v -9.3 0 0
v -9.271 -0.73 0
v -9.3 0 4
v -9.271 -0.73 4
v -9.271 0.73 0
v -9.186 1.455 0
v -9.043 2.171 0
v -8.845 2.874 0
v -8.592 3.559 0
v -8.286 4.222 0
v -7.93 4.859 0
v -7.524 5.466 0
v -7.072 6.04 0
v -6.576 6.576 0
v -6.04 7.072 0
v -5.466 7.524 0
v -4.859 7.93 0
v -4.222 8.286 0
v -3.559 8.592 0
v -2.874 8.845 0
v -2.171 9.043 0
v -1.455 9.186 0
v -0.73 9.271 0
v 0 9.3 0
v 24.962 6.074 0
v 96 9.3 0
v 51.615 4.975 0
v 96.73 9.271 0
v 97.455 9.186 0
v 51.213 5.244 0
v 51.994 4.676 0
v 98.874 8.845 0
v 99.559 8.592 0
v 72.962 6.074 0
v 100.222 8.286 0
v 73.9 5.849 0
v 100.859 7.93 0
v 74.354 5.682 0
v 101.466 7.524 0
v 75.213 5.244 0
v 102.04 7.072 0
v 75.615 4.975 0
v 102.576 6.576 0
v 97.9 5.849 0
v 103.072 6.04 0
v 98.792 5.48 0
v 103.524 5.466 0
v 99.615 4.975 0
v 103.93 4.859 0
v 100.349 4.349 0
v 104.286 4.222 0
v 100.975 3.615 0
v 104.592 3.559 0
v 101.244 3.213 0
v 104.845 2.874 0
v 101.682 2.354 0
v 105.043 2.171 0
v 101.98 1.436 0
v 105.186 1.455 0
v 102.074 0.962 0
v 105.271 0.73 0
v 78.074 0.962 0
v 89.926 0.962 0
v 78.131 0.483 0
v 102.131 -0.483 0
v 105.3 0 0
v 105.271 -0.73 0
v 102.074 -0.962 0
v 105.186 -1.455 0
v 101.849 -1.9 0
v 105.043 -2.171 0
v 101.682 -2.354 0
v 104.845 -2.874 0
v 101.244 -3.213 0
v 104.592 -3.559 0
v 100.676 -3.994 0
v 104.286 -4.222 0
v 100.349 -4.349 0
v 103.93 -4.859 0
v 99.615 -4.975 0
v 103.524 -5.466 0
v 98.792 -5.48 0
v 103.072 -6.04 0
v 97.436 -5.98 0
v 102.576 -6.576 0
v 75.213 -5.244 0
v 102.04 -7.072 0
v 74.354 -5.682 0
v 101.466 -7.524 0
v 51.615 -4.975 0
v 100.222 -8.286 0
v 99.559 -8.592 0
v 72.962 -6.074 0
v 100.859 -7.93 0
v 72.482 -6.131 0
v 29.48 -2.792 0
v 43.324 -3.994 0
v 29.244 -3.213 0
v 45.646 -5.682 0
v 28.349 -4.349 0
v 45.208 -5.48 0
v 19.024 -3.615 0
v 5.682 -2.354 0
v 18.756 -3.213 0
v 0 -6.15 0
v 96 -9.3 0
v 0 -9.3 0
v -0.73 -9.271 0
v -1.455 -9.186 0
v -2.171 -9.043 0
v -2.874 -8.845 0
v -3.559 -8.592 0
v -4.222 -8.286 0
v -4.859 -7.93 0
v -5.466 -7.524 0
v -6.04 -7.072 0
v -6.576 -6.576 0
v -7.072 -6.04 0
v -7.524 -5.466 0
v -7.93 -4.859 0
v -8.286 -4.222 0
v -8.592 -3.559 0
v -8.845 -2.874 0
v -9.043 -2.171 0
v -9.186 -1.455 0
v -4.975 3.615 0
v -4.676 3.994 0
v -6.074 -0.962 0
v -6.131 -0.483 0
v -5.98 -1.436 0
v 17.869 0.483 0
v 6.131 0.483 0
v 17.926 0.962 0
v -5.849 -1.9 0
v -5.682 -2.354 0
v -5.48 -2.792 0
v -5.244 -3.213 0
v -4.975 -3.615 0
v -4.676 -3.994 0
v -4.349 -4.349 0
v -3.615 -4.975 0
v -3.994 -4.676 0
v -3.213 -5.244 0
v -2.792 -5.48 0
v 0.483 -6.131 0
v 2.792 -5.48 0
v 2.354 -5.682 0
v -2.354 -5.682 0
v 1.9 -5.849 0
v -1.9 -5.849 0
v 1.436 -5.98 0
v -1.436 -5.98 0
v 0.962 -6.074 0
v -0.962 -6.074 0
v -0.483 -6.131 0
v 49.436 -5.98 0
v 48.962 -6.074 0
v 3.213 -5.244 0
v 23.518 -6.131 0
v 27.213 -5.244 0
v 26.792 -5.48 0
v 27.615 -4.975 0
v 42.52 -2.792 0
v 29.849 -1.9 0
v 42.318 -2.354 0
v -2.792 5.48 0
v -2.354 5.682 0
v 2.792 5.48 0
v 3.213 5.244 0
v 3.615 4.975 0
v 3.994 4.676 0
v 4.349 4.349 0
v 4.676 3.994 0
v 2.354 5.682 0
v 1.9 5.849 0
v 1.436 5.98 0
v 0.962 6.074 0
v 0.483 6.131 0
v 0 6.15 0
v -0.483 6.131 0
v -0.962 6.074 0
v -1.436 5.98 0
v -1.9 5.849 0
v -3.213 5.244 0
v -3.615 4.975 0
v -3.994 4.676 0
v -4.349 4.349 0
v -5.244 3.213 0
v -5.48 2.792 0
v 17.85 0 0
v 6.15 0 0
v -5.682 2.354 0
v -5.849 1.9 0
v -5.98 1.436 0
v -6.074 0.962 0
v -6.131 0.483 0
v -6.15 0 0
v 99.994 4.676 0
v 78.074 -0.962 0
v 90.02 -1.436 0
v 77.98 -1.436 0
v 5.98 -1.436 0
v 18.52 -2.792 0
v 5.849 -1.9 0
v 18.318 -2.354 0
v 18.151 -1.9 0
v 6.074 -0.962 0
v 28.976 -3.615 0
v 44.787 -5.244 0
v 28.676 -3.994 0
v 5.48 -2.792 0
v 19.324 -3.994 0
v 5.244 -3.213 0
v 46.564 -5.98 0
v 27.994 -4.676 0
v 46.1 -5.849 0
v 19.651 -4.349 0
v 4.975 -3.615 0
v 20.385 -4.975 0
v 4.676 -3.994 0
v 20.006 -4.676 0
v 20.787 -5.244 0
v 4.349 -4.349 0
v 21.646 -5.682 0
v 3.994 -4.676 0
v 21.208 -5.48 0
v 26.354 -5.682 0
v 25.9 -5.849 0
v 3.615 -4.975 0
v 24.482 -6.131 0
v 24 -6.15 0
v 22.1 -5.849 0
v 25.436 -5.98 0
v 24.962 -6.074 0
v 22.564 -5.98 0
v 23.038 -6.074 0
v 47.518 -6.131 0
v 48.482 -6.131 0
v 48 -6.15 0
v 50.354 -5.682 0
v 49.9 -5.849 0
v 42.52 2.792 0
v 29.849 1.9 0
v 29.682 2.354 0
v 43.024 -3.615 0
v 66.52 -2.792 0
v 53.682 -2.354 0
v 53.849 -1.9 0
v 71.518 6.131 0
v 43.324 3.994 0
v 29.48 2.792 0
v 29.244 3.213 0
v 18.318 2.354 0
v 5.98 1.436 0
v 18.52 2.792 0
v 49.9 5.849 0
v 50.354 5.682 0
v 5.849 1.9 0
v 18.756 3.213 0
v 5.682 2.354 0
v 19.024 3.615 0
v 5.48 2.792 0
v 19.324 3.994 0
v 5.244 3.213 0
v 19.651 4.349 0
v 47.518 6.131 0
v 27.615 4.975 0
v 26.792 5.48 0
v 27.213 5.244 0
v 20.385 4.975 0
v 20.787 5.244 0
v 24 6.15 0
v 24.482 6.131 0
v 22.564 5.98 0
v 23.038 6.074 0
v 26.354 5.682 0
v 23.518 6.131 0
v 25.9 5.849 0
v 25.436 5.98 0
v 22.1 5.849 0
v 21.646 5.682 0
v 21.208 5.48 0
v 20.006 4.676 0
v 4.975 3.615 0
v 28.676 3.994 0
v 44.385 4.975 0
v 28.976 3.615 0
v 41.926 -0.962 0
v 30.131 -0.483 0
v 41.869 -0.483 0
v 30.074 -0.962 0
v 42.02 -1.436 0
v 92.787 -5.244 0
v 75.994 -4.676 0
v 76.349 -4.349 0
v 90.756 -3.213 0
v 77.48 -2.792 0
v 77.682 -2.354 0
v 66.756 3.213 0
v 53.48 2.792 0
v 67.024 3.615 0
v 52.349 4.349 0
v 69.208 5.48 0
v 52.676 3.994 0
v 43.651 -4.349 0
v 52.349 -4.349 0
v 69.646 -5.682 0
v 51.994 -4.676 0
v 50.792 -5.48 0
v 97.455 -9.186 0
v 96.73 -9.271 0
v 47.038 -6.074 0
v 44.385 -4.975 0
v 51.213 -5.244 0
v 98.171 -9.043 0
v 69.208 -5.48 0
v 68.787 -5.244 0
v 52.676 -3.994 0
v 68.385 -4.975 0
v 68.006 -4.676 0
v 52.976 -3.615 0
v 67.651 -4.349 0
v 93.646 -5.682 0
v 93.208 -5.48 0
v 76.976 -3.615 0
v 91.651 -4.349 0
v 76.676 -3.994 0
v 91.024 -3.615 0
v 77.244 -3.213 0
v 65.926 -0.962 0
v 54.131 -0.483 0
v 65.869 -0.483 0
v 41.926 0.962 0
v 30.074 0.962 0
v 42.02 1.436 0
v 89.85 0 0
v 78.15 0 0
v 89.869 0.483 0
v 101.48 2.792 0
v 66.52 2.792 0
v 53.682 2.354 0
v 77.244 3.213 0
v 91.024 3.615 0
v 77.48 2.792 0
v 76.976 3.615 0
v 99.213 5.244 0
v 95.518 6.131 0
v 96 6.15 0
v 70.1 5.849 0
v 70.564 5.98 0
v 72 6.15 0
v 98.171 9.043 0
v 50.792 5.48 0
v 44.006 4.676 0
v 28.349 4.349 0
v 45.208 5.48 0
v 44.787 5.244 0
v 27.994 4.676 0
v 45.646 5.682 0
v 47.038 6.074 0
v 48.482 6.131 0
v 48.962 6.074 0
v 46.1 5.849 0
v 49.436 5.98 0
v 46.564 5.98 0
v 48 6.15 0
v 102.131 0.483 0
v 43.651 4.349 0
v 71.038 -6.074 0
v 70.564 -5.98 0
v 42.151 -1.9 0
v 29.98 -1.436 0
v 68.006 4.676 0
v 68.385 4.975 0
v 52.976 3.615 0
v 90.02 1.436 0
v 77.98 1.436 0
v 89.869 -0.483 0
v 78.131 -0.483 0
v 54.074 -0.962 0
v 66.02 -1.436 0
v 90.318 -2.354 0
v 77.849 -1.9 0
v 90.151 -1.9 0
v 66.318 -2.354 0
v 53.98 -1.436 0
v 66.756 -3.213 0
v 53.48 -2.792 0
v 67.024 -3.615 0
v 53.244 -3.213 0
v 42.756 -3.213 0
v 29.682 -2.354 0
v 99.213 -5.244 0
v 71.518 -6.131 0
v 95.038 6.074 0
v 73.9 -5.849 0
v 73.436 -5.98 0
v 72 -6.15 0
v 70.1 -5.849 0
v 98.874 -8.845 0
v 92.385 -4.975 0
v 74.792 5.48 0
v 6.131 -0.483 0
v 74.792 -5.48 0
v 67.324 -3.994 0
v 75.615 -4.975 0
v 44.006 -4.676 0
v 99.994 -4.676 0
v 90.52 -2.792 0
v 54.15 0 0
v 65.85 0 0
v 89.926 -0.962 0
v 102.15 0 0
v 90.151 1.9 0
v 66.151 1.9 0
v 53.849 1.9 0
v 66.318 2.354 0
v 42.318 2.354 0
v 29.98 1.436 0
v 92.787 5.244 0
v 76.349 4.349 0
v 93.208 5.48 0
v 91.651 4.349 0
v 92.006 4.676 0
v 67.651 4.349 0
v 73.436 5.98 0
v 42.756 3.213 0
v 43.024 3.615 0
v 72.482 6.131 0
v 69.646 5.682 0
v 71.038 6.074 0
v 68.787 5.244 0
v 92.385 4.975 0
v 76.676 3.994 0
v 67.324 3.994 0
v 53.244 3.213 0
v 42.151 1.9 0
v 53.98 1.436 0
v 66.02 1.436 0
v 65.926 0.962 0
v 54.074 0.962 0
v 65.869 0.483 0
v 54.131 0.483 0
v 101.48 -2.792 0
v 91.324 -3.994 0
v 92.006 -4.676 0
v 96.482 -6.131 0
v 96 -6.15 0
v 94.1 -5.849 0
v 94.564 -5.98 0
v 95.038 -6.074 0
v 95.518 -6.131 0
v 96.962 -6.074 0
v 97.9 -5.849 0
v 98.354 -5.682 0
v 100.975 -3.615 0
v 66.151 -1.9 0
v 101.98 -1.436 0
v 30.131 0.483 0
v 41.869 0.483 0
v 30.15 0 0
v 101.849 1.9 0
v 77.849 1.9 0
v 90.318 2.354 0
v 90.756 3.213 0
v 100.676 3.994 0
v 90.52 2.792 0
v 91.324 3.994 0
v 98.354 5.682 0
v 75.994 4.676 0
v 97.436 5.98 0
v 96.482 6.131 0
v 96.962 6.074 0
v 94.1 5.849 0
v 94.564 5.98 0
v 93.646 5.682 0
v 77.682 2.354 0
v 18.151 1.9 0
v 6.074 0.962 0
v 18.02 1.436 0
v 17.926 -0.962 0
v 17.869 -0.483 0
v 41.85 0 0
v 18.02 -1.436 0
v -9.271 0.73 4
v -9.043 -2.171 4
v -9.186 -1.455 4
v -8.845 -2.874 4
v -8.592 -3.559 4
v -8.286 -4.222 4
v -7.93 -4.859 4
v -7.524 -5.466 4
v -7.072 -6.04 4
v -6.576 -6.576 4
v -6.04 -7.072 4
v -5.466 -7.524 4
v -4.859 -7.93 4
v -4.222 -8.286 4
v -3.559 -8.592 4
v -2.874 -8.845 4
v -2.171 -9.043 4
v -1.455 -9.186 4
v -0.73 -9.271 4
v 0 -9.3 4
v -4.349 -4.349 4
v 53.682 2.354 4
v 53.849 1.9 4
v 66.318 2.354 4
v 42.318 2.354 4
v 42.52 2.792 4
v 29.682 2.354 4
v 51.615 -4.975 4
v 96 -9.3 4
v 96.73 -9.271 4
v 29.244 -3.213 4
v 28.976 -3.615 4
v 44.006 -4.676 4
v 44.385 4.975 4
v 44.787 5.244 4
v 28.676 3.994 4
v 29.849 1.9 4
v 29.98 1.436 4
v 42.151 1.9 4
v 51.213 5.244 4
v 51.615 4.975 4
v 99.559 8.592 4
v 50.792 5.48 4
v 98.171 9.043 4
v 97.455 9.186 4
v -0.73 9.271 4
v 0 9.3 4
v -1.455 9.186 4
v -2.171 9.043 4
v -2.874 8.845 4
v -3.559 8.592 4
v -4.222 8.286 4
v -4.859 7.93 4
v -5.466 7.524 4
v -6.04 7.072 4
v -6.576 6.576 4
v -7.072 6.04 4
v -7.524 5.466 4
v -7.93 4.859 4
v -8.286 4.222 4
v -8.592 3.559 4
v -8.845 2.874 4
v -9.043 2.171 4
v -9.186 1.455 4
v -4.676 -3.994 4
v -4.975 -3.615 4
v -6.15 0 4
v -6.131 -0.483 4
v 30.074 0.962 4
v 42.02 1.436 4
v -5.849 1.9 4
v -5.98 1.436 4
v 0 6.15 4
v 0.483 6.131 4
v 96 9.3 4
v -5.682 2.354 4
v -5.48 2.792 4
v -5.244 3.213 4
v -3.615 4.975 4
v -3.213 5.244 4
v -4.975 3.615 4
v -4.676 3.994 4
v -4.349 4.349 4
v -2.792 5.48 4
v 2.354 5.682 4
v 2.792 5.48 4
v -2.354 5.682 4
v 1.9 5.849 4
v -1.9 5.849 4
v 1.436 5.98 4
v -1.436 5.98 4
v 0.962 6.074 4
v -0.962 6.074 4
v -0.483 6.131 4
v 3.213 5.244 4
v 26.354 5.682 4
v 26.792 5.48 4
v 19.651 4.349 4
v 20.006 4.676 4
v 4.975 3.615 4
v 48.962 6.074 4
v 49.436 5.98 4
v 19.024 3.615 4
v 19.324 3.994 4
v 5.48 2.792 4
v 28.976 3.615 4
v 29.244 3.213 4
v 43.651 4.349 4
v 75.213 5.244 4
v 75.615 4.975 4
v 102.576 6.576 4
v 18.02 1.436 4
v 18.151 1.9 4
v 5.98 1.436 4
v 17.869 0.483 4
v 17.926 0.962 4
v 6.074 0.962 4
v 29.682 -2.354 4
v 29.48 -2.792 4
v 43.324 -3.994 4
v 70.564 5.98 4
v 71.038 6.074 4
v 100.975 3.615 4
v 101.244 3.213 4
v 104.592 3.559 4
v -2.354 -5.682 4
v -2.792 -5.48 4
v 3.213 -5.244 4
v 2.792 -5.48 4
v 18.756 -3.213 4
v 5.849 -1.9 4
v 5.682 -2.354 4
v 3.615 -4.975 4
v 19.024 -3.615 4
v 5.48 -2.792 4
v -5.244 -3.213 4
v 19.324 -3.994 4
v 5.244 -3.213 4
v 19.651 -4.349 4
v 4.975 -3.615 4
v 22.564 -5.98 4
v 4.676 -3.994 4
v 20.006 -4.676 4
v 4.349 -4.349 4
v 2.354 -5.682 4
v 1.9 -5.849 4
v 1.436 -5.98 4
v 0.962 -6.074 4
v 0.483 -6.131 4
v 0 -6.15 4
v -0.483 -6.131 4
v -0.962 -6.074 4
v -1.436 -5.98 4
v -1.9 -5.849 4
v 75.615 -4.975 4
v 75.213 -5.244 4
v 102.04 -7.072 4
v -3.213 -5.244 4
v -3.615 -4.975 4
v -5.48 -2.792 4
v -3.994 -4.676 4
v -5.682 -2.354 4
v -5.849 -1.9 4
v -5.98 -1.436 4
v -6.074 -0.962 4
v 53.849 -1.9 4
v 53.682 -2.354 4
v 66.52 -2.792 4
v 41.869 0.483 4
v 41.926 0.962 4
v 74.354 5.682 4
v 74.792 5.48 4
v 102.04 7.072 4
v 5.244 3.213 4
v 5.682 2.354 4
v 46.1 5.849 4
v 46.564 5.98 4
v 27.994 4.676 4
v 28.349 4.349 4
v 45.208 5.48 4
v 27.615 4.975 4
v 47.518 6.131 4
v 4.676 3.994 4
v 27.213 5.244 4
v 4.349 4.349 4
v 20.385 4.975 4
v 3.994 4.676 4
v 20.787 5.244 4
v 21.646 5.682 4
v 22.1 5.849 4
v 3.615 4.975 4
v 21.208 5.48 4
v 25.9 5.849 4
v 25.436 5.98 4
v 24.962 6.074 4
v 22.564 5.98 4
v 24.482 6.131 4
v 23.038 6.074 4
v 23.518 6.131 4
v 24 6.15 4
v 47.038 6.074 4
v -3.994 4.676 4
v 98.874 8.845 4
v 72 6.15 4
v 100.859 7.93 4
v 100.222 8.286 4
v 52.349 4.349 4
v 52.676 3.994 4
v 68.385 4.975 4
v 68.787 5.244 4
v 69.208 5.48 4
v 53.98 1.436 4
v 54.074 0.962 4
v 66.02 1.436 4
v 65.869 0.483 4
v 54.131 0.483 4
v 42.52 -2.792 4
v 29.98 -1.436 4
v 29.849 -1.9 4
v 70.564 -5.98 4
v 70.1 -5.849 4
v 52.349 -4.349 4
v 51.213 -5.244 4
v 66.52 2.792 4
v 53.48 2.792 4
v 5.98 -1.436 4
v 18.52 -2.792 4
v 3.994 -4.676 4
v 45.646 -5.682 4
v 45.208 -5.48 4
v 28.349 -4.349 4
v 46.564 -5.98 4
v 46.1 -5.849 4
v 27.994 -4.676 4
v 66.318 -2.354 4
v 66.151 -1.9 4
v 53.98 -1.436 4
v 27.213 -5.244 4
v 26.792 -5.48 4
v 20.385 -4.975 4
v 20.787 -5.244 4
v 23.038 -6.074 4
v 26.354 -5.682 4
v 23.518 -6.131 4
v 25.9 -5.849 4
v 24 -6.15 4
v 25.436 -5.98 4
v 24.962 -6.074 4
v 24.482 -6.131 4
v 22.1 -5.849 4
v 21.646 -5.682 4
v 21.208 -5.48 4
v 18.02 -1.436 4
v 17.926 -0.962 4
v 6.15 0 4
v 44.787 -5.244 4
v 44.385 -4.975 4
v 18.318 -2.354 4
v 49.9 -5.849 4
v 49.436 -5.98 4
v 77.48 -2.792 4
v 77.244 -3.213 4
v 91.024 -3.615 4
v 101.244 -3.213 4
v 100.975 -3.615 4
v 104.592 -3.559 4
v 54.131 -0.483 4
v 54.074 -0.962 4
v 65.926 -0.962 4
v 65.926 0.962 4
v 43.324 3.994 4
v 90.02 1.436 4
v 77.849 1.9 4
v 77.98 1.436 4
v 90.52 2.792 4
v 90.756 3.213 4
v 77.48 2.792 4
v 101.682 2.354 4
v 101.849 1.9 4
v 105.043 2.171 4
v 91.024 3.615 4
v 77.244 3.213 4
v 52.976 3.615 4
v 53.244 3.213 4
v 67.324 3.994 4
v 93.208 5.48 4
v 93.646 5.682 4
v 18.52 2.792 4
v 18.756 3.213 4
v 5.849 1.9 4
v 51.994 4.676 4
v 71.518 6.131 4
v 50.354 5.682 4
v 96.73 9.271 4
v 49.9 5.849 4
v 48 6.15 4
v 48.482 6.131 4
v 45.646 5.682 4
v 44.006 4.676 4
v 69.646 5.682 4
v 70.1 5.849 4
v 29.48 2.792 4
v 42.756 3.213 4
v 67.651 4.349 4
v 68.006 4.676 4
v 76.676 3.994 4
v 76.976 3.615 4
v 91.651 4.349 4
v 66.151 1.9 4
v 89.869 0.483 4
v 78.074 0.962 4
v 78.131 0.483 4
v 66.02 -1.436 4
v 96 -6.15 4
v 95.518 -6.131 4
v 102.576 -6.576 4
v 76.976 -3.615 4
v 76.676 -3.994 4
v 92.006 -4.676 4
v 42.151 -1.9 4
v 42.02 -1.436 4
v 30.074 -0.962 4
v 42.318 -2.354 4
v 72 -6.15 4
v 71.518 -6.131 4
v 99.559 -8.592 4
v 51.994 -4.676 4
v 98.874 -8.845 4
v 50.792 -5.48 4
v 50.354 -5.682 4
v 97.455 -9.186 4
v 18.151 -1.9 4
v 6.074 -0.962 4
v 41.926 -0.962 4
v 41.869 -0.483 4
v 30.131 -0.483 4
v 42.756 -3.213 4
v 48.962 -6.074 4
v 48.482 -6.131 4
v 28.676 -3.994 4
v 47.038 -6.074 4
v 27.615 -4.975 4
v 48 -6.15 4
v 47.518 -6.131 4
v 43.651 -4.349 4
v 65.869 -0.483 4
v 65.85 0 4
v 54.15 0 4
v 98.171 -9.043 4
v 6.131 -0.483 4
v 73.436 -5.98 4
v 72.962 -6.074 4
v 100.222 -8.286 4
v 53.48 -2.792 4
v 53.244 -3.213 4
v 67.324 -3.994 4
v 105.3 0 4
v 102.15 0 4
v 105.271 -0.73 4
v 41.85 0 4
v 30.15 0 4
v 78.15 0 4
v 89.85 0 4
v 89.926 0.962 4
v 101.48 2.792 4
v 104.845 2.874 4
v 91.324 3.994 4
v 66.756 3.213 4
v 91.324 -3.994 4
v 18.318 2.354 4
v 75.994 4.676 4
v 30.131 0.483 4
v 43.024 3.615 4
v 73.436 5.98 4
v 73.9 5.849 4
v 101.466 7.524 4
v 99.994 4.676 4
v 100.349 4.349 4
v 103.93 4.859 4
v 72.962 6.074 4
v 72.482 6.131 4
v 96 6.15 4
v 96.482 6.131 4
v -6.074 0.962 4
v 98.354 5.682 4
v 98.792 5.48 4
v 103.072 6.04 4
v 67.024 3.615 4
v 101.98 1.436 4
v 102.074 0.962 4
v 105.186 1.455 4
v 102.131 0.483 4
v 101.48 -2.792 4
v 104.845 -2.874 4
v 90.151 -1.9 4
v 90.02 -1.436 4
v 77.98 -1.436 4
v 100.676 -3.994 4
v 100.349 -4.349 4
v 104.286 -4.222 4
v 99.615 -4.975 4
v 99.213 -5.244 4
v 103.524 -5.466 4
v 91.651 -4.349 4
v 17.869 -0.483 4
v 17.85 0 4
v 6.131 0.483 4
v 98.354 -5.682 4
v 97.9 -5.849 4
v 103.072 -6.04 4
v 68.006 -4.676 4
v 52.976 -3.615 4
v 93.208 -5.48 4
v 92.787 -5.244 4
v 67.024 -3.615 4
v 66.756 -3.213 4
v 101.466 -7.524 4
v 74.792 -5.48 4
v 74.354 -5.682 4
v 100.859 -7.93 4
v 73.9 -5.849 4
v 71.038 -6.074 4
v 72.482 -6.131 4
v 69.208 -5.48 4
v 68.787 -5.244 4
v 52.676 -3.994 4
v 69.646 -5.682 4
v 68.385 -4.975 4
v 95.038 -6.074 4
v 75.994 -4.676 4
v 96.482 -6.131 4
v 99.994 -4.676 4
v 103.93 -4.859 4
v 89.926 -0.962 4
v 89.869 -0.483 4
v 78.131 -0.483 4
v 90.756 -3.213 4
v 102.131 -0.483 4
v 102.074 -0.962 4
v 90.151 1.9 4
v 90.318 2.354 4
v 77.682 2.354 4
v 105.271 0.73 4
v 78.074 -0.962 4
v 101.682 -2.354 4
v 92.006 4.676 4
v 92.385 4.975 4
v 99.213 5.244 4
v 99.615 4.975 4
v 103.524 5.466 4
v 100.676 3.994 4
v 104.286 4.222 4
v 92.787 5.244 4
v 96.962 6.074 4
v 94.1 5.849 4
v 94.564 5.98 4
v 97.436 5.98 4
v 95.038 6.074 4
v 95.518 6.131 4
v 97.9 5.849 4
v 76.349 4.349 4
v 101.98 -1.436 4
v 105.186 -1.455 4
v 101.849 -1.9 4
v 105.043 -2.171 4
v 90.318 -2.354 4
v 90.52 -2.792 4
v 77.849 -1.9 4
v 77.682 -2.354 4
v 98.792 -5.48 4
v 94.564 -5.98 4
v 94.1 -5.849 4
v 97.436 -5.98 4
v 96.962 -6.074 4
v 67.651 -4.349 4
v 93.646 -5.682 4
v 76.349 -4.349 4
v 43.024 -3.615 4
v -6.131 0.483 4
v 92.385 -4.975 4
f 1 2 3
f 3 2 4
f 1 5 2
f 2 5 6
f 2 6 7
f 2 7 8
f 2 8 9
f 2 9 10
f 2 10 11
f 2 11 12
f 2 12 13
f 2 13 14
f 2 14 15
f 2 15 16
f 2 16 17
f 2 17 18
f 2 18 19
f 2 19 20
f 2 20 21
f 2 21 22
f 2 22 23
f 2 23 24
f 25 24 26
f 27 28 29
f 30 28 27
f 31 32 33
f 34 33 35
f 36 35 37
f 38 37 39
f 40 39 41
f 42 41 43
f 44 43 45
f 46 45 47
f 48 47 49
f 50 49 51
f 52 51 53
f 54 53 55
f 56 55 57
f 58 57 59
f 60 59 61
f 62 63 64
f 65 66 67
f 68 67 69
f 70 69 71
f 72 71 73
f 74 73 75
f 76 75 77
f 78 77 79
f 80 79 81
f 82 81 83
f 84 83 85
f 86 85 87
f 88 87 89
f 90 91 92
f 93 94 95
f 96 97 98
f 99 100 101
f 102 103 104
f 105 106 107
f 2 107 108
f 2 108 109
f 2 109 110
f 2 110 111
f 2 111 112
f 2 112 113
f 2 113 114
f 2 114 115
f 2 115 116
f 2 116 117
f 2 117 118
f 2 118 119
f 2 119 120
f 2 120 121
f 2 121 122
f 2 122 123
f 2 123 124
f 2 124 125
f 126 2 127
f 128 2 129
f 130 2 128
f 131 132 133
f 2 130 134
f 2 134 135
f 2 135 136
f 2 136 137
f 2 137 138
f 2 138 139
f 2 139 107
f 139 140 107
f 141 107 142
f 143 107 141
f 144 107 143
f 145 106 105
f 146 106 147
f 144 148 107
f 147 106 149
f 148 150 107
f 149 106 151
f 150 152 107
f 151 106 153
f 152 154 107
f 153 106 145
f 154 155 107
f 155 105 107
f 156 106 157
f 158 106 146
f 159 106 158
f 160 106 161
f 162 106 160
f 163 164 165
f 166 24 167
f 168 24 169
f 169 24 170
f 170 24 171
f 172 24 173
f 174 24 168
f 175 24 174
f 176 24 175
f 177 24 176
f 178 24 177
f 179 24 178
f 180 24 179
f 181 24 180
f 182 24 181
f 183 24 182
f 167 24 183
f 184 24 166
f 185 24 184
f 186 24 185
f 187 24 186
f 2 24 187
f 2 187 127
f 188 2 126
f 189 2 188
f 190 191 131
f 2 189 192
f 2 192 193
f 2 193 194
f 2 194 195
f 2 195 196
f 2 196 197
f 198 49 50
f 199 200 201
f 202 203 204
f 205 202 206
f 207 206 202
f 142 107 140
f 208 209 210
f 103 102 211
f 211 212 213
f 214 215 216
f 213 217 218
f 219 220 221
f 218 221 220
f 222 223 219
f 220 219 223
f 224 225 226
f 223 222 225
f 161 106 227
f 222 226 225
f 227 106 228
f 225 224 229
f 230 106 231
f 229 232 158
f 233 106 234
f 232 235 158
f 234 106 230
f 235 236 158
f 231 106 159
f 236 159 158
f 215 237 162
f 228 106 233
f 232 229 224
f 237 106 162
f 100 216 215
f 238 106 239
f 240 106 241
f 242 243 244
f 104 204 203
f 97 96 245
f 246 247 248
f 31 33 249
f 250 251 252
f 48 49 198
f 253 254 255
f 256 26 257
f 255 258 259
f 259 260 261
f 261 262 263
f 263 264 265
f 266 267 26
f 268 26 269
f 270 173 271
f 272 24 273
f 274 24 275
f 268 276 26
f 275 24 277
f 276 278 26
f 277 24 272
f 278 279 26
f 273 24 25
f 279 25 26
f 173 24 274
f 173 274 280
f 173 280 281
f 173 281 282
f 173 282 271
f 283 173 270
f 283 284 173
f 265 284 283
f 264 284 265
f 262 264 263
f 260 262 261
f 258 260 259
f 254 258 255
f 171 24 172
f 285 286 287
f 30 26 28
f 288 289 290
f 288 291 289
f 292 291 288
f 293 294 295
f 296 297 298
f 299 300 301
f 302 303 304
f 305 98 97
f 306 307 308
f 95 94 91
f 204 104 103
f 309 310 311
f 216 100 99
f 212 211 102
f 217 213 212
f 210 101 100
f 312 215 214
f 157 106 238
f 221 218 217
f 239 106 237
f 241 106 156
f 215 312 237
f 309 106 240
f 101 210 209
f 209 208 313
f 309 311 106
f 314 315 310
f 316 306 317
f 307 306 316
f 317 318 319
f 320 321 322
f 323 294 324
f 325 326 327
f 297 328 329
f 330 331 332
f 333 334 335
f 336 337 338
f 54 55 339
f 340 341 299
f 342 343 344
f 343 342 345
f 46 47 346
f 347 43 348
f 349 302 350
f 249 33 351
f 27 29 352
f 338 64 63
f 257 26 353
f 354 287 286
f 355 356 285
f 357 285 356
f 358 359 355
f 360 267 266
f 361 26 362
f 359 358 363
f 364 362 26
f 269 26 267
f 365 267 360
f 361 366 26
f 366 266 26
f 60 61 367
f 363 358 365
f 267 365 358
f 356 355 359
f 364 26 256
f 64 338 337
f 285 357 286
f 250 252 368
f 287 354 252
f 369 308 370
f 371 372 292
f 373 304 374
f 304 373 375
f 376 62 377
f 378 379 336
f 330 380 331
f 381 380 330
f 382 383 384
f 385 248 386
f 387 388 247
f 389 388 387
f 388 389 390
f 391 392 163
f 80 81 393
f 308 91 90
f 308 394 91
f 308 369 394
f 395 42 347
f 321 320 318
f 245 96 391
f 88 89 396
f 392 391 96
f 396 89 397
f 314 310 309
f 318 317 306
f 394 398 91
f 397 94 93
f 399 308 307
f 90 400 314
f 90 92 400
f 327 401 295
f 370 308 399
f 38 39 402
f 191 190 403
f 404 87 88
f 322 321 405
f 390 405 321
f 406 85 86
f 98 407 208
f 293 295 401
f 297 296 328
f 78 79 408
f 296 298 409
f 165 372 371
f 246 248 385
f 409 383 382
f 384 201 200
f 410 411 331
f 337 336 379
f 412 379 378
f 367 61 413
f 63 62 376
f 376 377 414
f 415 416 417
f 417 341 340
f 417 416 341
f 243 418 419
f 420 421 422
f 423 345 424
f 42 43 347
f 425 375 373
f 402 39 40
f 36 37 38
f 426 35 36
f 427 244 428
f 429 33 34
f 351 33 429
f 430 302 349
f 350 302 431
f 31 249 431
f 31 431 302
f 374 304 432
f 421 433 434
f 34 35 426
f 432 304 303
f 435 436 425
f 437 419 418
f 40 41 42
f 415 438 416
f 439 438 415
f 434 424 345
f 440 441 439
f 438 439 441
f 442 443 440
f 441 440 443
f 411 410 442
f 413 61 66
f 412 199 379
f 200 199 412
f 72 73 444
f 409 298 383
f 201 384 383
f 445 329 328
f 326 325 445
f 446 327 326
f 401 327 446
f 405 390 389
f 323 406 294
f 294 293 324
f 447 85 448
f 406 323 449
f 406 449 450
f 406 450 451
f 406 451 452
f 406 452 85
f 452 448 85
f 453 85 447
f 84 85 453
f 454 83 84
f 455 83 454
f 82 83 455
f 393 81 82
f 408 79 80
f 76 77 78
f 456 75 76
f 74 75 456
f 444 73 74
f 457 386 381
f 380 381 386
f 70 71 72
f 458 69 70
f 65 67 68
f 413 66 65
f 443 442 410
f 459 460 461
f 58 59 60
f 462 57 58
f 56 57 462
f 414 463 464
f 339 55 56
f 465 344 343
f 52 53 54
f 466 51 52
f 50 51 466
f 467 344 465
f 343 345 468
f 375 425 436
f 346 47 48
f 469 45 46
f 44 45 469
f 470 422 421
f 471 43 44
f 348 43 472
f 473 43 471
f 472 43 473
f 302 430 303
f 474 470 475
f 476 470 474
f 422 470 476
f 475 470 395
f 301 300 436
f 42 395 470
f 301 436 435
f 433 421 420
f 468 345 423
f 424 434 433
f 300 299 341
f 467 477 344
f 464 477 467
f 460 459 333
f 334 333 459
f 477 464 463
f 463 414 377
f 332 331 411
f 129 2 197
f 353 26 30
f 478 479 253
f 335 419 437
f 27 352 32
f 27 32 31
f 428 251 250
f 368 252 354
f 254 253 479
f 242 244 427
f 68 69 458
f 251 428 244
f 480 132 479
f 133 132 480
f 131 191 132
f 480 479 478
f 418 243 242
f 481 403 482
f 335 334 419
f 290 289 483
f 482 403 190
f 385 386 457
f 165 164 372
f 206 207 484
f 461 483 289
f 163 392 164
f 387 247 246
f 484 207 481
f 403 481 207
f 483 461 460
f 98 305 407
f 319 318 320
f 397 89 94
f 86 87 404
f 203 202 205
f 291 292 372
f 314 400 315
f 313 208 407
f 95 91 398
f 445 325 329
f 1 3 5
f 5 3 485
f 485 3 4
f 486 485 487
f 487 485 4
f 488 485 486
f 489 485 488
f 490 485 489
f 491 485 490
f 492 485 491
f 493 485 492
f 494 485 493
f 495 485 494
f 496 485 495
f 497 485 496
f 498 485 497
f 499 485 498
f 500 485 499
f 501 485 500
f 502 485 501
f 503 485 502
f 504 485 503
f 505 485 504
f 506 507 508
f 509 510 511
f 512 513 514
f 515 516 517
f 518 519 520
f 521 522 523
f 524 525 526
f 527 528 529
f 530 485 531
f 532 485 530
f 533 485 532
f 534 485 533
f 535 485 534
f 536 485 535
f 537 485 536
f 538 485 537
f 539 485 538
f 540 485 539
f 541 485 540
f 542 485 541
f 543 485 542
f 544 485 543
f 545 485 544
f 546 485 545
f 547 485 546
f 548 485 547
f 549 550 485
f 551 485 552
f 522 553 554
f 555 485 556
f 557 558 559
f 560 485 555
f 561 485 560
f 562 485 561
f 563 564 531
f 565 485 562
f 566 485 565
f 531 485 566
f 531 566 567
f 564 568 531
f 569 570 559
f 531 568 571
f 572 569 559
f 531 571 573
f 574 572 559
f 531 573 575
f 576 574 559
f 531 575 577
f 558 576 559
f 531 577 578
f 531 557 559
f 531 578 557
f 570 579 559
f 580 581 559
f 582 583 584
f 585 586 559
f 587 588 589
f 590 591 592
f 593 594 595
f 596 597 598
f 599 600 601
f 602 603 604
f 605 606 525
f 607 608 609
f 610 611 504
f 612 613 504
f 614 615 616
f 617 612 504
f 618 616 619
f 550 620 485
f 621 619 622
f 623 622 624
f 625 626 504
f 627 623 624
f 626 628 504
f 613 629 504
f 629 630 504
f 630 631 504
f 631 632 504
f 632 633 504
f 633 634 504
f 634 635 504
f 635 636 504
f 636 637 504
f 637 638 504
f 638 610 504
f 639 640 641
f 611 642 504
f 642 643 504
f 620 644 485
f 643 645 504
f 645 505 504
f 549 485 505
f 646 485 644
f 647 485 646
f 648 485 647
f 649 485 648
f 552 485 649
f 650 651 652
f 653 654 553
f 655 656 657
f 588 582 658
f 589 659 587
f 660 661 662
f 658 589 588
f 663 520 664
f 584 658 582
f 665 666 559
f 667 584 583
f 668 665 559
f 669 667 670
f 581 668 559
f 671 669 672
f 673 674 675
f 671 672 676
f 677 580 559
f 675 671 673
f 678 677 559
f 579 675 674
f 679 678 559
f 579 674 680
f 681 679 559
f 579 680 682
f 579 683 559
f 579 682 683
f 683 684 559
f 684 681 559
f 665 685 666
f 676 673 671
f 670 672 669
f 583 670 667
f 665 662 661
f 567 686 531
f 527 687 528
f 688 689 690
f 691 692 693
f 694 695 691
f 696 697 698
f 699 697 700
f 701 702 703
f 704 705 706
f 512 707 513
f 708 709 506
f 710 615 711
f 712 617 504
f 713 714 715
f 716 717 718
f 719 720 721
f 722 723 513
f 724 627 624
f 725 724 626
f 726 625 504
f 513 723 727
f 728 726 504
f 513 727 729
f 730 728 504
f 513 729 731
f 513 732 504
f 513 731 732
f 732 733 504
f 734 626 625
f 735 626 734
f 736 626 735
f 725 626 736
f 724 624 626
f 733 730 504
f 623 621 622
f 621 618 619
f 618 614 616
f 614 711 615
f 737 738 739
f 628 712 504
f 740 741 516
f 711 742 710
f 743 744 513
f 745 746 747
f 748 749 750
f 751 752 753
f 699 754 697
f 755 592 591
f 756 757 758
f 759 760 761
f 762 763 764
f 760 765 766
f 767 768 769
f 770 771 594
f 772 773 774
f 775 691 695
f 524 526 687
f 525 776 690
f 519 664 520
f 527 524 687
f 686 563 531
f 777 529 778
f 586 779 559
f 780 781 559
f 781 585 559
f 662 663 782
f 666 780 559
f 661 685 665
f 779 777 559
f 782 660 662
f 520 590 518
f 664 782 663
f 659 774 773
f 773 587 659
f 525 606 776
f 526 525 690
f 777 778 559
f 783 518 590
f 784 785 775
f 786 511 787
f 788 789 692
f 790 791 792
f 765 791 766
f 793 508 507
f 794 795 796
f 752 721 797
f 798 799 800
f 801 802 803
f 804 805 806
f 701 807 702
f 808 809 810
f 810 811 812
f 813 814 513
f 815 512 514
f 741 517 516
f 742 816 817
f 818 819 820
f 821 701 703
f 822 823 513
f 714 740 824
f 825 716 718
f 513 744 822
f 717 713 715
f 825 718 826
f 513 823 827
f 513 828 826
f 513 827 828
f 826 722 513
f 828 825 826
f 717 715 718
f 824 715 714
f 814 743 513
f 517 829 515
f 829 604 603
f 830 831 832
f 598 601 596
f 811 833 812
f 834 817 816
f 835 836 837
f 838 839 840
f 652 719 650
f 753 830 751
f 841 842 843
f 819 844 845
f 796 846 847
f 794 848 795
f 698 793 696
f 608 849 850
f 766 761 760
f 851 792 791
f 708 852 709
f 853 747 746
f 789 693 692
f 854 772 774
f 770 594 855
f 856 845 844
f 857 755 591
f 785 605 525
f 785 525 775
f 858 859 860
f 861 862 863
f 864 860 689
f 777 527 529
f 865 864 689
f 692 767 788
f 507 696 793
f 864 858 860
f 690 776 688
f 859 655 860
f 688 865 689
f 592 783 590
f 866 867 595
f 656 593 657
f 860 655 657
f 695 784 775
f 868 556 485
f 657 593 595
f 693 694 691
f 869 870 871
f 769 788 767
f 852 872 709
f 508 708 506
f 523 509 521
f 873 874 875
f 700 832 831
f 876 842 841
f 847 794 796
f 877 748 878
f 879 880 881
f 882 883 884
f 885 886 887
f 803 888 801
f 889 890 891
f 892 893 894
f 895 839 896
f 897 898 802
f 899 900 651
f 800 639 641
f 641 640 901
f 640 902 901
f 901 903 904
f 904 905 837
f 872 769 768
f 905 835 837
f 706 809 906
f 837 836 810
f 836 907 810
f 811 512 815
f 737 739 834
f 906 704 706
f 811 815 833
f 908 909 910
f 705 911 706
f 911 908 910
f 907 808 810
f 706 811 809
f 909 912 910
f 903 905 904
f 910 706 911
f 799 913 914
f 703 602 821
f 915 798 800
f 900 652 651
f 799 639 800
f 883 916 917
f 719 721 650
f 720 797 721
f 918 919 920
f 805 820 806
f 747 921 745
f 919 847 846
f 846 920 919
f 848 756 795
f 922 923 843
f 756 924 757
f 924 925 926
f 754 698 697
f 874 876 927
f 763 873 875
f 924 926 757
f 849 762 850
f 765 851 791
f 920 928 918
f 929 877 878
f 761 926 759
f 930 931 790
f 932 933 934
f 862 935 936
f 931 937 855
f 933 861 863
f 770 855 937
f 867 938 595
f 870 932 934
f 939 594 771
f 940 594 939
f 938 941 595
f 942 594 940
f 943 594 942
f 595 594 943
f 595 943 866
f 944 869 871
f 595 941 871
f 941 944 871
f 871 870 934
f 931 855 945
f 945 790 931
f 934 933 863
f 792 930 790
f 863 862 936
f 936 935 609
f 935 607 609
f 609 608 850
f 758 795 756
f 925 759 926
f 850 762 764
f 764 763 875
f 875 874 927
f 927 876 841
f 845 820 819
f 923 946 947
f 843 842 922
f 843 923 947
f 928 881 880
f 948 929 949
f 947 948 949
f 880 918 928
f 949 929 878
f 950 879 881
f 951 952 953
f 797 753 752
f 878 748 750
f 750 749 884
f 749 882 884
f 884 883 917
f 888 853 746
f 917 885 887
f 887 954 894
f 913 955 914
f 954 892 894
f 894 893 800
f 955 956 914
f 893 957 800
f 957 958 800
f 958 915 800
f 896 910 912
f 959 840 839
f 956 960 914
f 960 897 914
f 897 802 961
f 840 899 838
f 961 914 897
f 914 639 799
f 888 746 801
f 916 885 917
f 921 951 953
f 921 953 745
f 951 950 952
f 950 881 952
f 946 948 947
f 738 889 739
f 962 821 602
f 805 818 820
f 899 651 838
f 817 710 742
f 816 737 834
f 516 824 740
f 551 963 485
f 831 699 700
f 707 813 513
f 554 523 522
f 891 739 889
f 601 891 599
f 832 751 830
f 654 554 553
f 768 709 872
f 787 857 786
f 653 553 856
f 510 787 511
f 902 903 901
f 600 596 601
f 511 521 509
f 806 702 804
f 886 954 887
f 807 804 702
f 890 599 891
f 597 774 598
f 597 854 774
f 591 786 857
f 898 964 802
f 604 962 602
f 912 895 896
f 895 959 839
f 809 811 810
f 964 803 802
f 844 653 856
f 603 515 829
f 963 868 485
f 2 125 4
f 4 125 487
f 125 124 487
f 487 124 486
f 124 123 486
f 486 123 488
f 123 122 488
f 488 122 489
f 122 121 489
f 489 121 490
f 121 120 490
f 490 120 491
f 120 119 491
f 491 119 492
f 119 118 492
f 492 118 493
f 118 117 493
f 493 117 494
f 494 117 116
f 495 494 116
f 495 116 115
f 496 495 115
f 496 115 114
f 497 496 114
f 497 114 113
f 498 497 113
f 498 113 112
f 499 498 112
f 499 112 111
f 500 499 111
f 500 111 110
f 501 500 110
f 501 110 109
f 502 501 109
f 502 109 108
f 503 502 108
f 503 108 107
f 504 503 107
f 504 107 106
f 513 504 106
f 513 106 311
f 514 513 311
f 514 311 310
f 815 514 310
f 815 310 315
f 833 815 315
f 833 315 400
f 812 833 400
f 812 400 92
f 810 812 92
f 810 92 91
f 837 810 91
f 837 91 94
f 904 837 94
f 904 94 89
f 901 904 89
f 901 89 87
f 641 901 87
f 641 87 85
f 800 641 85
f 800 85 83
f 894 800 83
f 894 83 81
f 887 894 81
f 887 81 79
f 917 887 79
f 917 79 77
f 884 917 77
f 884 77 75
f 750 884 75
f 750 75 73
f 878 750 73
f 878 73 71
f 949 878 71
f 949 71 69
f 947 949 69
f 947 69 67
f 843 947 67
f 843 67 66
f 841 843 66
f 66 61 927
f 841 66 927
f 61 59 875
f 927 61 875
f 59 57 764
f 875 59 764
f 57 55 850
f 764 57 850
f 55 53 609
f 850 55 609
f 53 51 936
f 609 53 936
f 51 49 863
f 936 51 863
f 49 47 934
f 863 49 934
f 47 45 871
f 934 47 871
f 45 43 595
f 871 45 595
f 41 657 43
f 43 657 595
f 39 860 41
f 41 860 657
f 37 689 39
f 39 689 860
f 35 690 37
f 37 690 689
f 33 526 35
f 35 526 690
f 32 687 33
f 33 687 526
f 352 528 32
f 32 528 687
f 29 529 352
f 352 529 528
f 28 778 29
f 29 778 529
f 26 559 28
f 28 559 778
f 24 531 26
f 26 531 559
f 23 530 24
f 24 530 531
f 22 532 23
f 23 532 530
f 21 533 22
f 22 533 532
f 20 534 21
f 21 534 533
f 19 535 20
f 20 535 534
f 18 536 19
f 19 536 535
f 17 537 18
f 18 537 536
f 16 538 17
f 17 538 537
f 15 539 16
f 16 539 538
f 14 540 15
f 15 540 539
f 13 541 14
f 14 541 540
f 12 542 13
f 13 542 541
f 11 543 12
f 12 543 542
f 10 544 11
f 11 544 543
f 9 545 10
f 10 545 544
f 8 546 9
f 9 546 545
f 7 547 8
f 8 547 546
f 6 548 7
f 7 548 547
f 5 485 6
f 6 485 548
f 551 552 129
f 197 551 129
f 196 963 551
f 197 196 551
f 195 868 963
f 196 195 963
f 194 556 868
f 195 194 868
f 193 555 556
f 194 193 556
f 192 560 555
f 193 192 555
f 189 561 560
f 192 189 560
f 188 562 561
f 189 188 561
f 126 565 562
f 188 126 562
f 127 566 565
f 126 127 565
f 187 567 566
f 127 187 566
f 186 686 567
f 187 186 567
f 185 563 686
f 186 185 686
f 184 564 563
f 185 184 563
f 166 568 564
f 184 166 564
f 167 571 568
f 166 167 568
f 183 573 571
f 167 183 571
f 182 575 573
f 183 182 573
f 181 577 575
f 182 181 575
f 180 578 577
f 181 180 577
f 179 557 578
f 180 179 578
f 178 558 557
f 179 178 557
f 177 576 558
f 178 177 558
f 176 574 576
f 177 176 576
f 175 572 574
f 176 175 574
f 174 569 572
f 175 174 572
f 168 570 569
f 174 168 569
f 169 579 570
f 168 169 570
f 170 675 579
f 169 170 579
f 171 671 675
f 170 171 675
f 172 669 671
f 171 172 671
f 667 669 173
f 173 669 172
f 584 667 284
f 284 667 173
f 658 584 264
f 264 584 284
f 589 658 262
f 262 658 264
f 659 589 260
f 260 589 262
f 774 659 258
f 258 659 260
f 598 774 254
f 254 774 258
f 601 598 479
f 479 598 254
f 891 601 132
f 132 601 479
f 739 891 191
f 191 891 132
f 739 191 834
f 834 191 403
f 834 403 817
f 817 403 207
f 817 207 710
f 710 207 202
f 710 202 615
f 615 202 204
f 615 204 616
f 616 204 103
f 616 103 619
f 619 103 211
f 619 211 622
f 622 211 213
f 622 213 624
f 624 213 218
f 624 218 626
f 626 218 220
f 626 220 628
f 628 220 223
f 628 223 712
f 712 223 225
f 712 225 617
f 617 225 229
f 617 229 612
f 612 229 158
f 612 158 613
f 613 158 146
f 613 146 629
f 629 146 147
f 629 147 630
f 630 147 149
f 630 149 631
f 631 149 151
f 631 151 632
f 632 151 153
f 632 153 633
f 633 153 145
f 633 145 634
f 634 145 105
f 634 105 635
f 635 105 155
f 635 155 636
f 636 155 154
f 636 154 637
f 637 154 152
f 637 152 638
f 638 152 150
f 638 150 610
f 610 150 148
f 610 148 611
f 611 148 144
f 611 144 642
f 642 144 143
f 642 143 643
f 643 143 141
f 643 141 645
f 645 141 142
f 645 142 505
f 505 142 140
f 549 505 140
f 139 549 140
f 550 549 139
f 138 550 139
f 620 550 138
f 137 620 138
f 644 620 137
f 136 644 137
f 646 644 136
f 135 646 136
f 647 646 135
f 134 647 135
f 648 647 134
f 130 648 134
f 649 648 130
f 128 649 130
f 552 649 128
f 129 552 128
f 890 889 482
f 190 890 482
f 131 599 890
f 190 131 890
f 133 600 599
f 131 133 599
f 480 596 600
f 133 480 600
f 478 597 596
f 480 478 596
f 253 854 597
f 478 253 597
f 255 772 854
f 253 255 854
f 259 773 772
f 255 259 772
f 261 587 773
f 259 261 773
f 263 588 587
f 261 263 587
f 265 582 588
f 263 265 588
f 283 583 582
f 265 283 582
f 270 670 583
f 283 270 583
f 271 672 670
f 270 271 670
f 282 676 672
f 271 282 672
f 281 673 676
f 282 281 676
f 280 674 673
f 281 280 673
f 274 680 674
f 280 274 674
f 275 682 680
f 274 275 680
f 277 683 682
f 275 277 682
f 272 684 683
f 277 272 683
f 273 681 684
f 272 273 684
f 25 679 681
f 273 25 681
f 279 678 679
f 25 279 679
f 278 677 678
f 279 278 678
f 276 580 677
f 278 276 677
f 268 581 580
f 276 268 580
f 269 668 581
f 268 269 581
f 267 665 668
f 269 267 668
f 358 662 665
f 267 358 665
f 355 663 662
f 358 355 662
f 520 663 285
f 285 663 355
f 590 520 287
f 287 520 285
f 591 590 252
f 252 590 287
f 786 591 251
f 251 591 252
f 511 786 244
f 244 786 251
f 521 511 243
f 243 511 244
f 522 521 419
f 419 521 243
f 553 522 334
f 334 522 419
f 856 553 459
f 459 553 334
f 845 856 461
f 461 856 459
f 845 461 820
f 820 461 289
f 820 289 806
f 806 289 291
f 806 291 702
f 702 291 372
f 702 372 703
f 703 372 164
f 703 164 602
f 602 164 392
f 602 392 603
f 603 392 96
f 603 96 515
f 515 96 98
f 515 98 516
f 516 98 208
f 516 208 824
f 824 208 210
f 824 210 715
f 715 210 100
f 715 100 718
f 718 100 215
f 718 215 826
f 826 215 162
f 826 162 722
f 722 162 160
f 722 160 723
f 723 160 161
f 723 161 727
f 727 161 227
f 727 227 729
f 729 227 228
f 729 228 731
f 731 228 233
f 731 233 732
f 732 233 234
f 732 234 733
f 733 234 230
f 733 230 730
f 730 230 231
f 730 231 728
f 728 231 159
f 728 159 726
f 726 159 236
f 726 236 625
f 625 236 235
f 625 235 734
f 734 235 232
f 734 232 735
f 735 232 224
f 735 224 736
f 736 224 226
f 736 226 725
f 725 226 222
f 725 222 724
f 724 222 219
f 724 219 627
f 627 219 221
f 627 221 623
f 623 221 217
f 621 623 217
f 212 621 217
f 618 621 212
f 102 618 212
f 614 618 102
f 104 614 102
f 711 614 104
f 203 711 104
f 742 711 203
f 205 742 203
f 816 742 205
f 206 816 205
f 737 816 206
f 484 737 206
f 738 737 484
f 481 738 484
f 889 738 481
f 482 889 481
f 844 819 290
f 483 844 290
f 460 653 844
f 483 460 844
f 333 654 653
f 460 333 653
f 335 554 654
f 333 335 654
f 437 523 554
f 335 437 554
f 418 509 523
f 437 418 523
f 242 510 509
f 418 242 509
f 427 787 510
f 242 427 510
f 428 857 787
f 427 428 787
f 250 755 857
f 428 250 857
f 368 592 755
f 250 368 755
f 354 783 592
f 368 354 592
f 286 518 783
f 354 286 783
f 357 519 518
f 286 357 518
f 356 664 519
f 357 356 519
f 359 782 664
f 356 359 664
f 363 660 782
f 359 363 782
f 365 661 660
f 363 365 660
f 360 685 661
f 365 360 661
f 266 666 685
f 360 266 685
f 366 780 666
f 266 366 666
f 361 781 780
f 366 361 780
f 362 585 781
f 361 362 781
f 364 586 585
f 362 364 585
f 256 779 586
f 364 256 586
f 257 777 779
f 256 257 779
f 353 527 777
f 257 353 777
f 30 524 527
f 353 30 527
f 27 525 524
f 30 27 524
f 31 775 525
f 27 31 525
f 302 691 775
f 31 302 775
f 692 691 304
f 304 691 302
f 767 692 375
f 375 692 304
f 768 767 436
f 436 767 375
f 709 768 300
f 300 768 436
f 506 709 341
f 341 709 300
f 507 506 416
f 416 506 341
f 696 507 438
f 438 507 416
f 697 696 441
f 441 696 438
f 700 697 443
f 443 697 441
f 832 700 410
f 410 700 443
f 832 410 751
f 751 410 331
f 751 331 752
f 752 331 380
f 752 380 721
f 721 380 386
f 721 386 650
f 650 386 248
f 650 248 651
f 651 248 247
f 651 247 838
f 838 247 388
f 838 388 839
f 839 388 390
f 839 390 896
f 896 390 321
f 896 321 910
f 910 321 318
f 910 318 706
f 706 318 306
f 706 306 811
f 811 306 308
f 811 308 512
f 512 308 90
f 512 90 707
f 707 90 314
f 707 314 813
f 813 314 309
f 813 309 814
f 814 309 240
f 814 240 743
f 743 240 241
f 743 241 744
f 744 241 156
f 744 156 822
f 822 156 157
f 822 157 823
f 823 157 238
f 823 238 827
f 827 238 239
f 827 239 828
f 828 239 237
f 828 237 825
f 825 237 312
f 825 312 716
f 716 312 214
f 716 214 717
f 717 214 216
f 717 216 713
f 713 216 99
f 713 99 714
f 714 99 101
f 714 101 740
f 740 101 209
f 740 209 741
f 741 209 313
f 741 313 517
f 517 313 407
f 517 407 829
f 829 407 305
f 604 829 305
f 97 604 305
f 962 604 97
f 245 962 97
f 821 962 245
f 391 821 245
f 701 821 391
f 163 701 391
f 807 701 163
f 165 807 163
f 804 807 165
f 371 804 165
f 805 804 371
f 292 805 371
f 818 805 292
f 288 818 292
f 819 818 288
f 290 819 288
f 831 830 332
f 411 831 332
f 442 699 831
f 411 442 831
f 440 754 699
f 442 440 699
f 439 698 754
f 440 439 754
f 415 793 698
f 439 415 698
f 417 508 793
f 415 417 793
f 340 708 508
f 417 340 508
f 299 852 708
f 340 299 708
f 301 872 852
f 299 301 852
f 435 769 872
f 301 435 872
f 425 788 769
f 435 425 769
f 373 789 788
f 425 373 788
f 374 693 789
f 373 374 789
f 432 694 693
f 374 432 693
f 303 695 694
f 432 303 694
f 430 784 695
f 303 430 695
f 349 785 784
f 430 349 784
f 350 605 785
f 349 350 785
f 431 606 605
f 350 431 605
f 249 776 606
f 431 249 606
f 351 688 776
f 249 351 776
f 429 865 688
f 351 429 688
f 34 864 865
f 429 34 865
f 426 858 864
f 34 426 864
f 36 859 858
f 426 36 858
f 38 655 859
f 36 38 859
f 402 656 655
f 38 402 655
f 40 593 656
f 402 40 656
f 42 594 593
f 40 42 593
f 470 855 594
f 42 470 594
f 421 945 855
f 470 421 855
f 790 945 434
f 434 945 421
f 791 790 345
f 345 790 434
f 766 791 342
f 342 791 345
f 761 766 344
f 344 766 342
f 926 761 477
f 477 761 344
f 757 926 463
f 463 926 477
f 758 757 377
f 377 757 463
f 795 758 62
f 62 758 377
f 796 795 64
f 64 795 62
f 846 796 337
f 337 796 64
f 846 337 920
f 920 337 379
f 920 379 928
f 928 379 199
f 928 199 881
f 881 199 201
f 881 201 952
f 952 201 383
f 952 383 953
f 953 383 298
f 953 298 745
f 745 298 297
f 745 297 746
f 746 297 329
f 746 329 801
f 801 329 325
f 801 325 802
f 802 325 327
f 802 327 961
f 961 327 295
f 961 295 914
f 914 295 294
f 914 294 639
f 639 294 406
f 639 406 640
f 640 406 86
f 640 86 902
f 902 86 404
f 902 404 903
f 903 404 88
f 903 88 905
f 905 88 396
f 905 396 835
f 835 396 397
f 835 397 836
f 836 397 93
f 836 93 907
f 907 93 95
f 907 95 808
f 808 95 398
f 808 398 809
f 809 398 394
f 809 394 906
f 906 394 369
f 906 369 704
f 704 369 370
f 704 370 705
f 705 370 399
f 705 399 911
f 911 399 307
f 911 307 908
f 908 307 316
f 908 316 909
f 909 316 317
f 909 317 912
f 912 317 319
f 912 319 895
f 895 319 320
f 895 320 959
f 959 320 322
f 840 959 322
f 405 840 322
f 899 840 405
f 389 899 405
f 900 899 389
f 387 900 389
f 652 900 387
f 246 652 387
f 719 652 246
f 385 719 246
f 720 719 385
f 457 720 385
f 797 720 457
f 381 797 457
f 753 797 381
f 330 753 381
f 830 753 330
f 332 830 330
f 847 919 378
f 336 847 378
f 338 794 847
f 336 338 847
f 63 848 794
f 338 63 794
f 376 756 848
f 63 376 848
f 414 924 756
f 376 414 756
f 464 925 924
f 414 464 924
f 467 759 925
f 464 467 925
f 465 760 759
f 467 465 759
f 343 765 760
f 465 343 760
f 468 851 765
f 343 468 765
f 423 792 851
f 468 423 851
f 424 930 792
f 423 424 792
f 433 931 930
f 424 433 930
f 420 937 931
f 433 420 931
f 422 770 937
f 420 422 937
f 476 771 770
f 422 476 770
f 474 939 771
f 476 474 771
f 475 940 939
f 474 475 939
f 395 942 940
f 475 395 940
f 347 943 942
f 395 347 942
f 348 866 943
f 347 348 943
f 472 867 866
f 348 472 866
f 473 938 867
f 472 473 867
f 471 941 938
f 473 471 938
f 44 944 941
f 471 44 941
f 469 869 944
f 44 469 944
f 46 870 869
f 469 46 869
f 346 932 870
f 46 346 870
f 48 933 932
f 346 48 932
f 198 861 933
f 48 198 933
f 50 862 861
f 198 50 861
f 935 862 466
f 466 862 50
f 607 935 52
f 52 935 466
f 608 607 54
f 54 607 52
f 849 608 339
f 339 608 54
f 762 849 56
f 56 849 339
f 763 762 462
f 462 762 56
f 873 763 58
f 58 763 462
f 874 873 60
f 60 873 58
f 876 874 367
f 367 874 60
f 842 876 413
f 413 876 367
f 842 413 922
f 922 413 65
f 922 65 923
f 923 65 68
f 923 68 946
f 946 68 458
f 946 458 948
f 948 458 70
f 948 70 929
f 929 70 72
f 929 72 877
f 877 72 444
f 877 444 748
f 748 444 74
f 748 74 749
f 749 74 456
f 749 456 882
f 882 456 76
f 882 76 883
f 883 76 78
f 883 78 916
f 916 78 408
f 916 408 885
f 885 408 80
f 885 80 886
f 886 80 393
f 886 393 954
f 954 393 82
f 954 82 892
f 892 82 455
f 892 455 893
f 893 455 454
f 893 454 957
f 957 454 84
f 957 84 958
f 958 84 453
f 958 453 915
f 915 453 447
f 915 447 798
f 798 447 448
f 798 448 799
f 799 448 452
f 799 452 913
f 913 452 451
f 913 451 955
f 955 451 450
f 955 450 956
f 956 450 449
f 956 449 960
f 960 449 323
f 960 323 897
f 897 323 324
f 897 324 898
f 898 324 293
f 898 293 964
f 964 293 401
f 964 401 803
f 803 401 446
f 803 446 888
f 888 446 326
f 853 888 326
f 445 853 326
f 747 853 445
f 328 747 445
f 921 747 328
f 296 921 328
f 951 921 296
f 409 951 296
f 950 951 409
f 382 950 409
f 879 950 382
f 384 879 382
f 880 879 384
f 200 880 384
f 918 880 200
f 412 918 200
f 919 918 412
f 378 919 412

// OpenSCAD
// file: inc/constants.scad
pi=3.1415;
$fn=80;
//hole radius
hr = 6;

//distance between holes
dh = 12;

//x distance between holes
dhx = 12;

//y distance between holes
dhy = 14.4;

//give between two gears
giveg = .5;

//shaft give
sgive = .6;

//plug give
pgive = .15;

//fastener give (holes)
fgive = .13;

pitch=.25;

//gear give (hole)
ggive = .45;

//spacer give
spgive = .3;


////fastener sizes
//notch width
notchw = 0;

//notch height
notchh = 0;

//fastener height
fh = 4;

//fastener width (sans notch)
fw = hr;


//gear hole radius
ghr = 1.4;

//arrow length
al = 8;


//give for the nut
nut_give = .8;
// main file
include <inc/constants.scad>

//extra radius
slant = 2;


module bar(length=1, square=false, one_hole=true, slanted=false, holes=false, mirrorslanted=false)
{
  th=3;
  width=hr*2;
  len = length*(dh)+hr*2*(length-1);
  
  //outer width
  ow = th+pgive*2;

  


difference()
{
  hull()
  {
  cylinder(r=width/2+ow,h=4);
  translate([len+hr*2,0,0])
  cylinder(r=width/2+ow,h=4);
  }

  union(){
  //hole in the middle
  if(one_hole && length>1)
  hull()
  {
  translate([2*hr+th,0,-1])
  cylinder(r=hr+pgive, h=10);

  translate([len-pgive*4-th,0,-1])
  cylinder(r=hr+pgive, h=10);
  }
  else if(holes)
  {
    for(i=[1:length-1])
  {
  translate([i*dh+i*hr*2,0,0])
  if(square[i])
  {
    if(slanted[i])
      cylinder(r1=hr+ggive, r2=hr+pgive+slant, h=4, $fn=6);
    else
      cylinder(r=hr+ggive, h=4, $fn=6);

  }
  else
  {
    if(slanted[i])
      cylinder(r1=hr+pgive, r2=hr+pgive+slant, h=4);
    else
      cylinder(r=hr+pgive, h=4);

  }
  
  }

  }

  
  //hole on other end
  translate([len+hr*2,0,0])
  if(square[length])
  {
    if(slanted[length])
      cylinder(r1=hr+ggive,r2=hr+ggive+slant, h=4, $fn=6);
    else if(mirrorslanted[length])
      cylinder(r2=hr+pgive, r1=hr+pgive+slant, h=4, $fn=6);
    else
      cylinder(r=hr+ggive,h=4, $fn=6);
    
  }
  else
  {
    if(slanted[length])
      cylinder(r1=hr+pgive, r2=hr+pgive+slant, h=4);
    else
      cylinder(r=hr+pgive,h=4);
  }

  //first hole
  translate([0,0,0])
  if(square[0])
  {
    if(slanted[0])
      cylinder(r1=hr+ggive, r2=hr+pgive+slant, h=4, $fn=6);
    else
      cylinder(r=hr+ggive,h=4, $fn=6);
  }

  else
  {
    if(slanted[0])
      cylinder(r1=hr+pgive, r2=hr+ggive+slant,h=4);
    else
      cylinder(r=hr+pgive,h=4);
  }

  }
}

}

//bar(length=4, one_hole=true, holes=false, square=[true,false,false,false,true], slanted=[true,false,false,false,true]);


//bar(length=1, one_hole=true, holes=false, square=[true,true], slanted=[true,false], mirrorslanted=[true, true]);

bar(length=4, one_hole=false, holes=true);
